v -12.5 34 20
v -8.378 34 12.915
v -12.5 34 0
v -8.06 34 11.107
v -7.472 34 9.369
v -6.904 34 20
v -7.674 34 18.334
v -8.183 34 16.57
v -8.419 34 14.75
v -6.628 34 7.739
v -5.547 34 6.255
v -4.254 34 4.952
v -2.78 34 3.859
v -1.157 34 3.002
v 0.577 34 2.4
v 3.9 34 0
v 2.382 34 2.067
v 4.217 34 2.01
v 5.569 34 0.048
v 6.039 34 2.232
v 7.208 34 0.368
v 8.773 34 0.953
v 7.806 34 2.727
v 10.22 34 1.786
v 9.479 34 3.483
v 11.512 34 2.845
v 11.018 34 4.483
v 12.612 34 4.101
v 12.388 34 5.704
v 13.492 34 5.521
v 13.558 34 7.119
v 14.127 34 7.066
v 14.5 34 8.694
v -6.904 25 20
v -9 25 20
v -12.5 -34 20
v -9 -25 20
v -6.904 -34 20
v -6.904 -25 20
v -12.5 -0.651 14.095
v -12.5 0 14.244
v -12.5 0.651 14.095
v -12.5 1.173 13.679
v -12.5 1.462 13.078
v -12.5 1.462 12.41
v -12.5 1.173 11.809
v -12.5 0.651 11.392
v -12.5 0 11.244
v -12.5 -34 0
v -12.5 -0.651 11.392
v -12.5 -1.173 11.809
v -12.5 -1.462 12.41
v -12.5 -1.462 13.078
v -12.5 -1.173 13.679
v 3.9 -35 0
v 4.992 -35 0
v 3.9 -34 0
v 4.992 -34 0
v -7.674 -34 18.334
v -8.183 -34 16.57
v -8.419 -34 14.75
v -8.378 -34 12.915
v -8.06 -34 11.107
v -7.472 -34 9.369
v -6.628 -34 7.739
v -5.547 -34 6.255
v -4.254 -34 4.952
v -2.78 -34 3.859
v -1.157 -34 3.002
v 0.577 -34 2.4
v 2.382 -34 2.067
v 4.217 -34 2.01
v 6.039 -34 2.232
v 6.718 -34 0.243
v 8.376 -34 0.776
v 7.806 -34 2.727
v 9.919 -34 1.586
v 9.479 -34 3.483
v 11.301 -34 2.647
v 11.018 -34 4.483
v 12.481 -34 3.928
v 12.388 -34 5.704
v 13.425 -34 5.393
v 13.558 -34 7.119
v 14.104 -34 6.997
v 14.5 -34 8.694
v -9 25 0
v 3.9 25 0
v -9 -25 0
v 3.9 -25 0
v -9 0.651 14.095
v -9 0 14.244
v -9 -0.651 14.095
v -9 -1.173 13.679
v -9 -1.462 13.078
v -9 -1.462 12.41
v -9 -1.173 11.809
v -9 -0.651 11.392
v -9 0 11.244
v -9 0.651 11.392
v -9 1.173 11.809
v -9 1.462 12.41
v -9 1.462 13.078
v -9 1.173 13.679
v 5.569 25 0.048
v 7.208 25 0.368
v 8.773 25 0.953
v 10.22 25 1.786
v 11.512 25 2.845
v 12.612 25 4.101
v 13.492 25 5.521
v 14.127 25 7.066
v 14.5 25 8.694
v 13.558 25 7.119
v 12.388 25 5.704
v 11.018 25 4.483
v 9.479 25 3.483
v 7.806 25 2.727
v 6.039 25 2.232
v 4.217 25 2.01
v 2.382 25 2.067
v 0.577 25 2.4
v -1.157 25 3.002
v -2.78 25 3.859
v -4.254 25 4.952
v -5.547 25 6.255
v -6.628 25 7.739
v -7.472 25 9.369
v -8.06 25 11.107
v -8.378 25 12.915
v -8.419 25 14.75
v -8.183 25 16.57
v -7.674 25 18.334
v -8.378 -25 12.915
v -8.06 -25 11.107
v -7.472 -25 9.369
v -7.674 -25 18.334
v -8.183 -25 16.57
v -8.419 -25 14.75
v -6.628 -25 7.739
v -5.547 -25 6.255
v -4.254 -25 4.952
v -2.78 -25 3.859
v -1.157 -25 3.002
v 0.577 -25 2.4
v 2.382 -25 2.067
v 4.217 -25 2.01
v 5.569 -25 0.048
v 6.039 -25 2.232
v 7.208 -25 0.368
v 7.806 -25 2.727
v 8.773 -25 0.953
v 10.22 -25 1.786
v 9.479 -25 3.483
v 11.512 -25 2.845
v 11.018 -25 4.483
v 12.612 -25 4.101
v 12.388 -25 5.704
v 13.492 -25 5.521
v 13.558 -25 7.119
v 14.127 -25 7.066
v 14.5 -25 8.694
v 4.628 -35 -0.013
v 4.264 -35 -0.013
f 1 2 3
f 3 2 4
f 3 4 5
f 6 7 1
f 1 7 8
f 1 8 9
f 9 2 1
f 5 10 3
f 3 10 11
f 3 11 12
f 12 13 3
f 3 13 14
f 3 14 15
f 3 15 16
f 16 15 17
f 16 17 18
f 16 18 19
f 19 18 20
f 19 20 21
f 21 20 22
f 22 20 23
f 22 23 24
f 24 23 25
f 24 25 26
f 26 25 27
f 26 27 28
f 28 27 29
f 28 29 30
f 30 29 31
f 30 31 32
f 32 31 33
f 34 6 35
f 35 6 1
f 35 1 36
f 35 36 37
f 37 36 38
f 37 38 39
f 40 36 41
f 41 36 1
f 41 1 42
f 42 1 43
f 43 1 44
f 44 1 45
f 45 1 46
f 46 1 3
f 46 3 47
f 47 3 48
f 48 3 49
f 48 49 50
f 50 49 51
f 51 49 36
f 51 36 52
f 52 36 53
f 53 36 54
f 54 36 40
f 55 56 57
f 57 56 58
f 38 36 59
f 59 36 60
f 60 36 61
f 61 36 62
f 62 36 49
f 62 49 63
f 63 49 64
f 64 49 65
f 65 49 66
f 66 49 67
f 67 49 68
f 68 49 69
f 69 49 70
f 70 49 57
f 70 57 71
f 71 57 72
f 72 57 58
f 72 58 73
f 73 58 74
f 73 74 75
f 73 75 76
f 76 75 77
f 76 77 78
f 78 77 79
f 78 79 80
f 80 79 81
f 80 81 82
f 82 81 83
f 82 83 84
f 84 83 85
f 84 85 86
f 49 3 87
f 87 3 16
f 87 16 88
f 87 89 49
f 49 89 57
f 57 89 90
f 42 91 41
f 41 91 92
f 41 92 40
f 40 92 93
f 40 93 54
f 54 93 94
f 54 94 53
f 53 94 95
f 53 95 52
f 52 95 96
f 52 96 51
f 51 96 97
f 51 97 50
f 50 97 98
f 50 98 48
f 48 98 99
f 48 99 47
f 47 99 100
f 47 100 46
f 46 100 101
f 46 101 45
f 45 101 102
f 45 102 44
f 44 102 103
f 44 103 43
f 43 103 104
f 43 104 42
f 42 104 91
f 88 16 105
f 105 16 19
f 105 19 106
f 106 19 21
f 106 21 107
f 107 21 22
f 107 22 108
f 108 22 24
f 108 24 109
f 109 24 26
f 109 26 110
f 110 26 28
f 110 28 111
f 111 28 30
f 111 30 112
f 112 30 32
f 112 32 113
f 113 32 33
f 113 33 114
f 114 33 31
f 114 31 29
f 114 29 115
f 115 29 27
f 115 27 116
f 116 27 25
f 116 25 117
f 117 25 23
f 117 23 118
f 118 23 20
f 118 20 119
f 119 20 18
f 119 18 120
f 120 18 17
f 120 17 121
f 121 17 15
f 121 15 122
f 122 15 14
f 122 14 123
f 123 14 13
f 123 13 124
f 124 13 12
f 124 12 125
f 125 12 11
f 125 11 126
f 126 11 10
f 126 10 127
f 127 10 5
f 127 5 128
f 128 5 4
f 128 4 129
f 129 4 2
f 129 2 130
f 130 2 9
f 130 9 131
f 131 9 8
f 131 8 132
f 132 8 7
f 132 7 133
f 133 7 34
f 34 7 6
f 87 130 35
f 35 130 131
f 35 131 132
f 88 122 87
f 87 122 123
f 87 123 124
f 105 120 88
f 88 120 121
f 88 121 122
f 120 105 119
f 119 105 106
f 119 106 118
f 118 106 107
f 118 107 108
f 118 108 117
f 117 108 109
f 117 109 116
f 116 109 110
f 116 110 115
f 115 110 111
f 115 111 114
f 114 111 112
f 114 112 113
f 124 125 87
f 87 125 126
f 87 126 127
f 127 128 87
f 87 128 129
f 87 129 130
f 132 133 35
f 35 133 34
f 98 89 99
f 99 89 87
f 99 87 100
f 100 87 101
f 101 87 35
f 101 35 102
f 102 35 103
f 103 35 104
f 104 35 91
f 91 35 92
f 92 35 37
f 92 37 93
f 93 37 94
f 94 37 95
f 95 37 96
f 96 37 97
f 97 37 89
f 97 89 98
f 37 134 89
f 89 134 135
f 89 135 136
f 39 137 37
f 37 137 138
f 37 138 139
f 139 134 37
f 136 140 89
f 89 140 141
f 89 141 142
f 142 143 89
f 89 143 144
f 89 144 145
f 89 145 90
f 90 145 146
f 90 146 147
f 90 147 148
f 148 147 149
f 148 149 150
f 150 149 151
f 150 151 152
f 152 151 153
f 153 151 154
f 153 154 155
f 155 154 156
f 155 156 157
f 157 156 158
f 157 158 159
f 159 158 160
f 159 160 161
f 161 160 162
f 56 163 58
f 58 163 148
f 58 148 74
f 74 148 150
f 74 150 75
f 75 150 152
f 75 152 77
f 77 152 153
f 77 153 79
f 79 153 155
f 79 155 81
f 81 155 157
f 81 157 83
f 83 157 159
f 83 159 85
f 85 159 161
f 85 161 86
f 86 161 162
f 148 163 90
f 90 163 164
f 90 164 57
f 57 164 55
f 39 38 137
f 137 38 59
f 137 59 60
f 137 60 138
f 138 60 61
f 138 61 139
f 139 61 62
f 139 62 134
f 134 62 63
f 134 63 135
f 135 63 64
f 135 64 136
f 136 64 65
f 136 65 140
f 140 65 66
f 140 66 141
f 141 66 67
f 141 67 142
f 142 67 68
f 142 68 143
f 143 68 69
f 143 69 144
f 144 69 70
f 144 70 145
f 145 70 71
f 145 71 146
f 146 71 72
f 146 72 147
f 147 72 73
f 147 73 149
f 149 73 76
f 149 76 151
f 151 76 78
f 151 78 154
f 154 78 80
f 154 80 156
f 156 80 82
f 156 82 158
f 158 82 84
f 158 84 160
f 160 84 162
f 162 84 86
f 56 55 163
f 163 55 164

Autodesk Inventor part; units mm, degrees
ref_plane "YZ Plane" through (0, 0, 0) normal (1, 0, 0) x (0, 1, 0)
ref_plane "Work Plane1" through (-14.5, -35, 0) normal (0, -1, 0) x (1, 0, 0)
sketch "Sketch2" plane through (-14.5, -35, 0) normal (0, -1, 0) x (1, 0, 0)
  line L0 (4.3469, 0) -> (4.3469, 20)
  line L1 (7.596, 20) -> (7.4184, 20) projected
  line L2 (4.3469, 20) -> (7.596, 20)
  arc A0 (7.596, 20) -> (29, 8.6937) centre (18.17, 14.1045) ccw
  line L3 (4.3469, 0) -> (18.3998, 0)
  arc A1 (18.3998, 0) -> (29, 8.6937) centre (18.9461, 10.1431) ccw
  point P0 (14.5, 0)
  point P1 (5, 0)
  point P2 (18.2531, 1.9984)
extrude "Extrusion1" add sketch "Sketch2" against normal blind 10
ref_plane "Work Plane4" through (-14.5, -35, 0) normal (-1, 0, 0) x (0, 0, 1)
sketch "Sketch3" plane through (-14.5, -35, 0) normal (-1, 0, 0) x (0, 0, 1)
  line L0 (20, 0) -> (20, 70) projected
  line L1 (0, 0) -> (0, 21) projected
  line L2 (20, 70) -> (0, 70)
  line L3 (0, 70) -> (0, 0)
  line L4 (0, 0) -> (20, 0)
  line L5 (20, 0) -> (20, 70)
  point P0 (0, 35)
extrude "Extrusion2" add sketch "Sketch3" against normal blind 5.5
mirror "Mirror3" about plane through (0, 0, 0) normal (0, 1, 0) of "Extrusion1"
sketch "Sketch4" plane through (-9, -35, 0) normal (1, 0, 0) x (0, 0, -1)
  line L0 (-20, 10) -> (-1.9981, 10) projected
  line L1 (-12.7438, 10) -> (-12.7438, 60)
  line L2 (0, 60) -> (-20, 60) projected
  line L3 (-12.7438, 35) -> (-17.7089, 35)
  circle A0 centre (-12.7438, 35) radius 1.5
  point P0 (0, 35)
  point P1 (-8.6937, 10)
  dimension "d4" = 3
extrude "Extrusion3" cut sketch "Sketch4" against normal blind 10.375
sketch "Sketch5" plane through (-14.5, -35, 0) normal (-1, 0, 0) x (0, 0, 1)
  line L0 (20, 70) -> (0, 70) projected
  line L1 (0, 0) -> (20, 0) projected
  line L2 (20, 70) -> (0, 70)
  line L3 (0, 70) -> (0, 0)
  line L4 (0, 0) -> (20, 0)
  line L5 (20, 0) -> (20, 70)
  point P0 (0, 35)
extrude "Extrusion4" cut sketch "Sketch5" against normal blind 2
sketch "Sketch7" plane through (-14.5, -35, 0) normal (0, -1, 0) x (1, 0, 0)
  line L0 (7.596, 20) -> (2, 20) projected
  line L1 (2, 20) -> (2, 0) projected
  line L2 (2, 20) -> (2, 0)
  line L3 (2, 0) -> (19.4924, 0)
  arc A0 (18.3998, 0) -> (29, 8.6937) centre (18.9461, 10.1431) ccw projected
  line L4 (5.5, 20) -> (7.596, 20) projected
  arc A1 (7.596, 20) -> (29, 8.6937) centre (18.17, 14.1045) ccw
  arc A2 (7.596, 20) -> (29, 8.6937) centre (18.17, 14.1045) ccw projected
  arc A3 (19.4924, 0) -> (29, 8.6937) centre (18.9461, 10.1431) ccw
  line L5 (2, 20) -> (7.596, 20)
  point P0 (14.5, 0)
extrude "Extrusion5" cut sketch "Sketch7" against normal blind 1 contours A1 A0 L3 L1 L0
sketch "Sketch8" plane through (-12.5, 35, 0) normal (0, 1, 0) x (1, 0, 0)
  line L0 (3.5, -20) -> (5.596, -20) projected
  line L1 (0, 0) -> (0, -20) projected
  line L2 (5.596, -20) -> (0, -20)
  line L3 (0, -20) -> (0, 0)
  arc A0 (27, -8.6937) -> (16.3998, 0) centre (16.9461, -10.1431) ccw projected
  line L4 (0, 0) -> (16.3998, 0)
  arc A1 (27, -8.6937) -> (5.596, -20) centre (16.17, -14.1045) ccw projected
  arc A2 (27, -8.6937) -> (5.596, -20) centre (16.17, -14.1045) ccw
  arc A3 (27, -8.6937) -> (16.3998, 0) centre (16.9461, -10.1431) ccw
  point P0 (12.5, 0)
extrude "Extrusion6" cut sketch "Sketch8" against normal blind 1
properties part number "Speed Champ"
